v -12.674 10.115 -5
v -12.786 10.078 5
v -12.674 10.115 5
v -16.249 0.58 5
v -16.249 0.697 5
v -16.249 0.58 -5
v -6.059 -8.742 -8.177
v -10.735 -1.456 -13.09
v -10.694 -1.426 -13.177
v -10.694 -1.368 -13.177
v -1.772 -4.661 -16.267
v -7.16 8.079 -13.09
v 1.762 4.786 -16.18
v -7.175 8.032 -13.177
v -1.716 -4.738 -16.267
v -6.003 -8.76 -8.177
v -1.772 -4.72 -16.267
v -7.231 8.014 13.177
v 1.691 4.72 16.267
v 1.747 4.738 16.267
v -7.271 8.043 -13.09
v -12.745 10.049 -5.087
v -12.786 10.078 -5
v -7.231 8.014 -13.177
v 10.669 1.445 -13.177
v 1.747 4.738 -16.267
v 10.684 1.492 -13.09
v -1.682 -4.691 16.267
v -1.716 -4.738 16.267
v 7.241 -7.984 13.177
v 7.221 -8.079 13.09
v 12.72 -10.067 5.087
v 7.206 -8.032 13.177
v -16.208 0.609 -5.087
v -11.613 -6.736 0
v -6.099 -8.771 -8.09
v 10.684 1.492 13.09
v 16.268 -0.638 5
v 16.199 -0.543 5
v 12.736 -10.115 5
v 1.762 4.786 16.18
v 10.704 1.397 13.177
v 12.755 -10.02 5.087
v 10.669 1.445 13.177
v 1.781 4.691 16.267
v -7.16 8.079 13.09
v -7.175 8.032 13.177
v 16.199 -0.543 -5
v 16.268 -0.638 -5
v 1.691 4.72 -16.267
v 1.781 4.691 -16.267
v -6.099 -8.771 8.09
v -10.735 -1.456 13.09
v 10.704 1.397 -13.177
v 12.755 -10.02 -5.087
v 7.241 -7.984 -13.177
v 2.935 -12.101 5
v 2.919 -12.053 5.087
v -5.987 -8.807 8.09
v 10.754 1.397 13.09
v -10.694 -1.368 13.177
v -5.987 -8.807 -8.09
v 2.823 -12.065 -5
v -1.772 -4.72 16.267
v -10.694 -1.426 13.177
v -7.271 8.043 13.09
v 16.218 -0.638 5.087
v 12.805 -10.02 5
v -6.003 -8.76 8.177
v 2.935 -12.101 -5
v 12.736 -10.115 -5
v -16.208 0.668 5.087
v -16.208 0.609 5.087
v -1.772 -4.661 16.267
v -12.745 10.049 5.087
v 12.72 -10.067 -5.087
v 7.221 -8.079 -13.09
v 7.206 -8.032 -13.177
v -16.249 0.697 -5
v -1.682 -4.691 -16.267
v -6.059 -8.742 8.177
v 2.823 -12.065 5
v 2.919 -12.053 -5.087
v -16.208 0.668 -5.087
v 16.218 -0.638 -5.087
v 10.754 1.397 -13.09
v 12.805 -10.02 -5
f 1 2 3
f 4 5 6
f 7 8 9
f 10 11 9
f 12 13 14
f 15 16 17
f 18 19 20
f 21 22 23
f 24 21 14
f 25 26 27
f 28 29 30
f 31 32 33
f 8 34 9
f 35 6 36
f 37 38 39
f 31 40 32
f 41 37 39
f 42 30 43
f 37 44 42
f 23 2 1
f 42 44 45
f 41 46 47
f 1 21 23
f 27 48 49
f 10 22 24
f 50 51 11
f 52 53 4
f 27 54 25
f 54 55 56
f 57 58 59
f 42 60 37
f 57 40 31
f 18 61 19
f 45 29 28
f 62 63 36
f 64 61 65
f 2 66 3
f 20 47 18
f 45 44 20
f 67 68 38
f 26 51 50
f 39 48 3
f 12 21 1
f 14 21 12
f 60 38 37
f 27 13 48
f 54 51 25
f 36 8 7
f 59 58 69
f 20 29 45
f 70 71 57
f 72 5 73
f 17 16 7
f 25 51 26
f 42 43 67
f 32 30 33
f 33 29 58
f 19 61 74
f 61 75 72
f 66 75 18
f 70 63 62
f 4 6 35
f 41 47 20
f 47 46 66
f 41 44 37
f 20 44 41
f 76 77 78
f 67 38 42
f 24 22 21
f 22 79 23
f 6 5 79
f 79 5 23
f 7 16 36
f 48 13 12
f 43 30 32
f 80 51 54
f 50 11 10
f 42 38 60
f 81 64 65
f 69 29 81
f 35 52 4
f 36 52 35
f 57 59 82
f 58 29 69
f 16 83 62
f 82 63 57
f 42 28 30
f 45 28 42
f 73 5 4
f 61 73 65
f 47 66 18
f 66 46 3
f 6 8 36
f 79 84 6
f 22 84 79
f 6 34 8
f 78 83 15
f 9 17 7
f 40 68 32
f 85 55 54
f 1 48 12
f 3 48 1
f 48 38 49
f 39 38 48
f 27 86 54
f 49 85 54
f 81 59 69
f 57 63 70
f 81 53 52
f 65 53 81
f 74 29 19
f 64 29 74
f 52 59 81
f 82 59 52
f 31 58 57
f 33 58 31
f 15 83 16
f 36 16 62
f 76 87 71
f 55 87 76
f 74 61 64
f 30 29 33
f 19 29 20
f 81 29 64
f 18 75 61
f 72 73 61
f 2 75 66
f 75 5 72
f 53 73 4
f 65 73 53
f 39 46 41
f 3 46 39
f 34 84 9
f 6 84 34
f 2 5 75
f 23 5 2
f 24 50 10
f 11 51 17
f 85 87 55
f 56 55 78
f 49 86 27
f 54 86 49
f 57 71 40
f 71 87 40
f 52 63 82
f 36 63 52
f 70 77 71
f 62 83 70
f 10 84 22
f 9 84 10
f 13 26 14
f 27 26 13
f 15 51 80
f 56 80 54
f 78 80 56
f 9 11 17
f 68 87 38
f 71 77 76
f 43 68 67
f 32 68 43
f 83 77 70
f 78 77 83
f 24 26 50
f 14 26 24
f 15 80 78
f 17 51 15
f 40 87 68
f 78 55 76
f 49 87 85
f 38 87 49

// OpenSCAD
// Auto-generated OpenSCAD file

    inner_points = 10*[[-1.6167766456007826, 0.06384352681284394, 0.5000000000001501], [-1.2704727596155507, 1.001965916776716, 0.5000000000009248], [1.2704671898464706, -1.0019702419428729, -0.5000000000009248], [1.6167710758317024, -0.06384785197900072, -0.5000000000001501], [-1.616776645600842, 0.06384352681369176, -0.4999999999998499], [-1.27047275961561, 1.0019659167775639, -0.4999999999990751], [-1.0653621399346023, -0.13970879018153537, 1.309016994374892], [-0.7190582539493701, 0.7984135997823368, 1.3090169943756669], [0.7190526841802901, -0.7984179249484936, -1.3090169943756669], [1.065356570165522, 0.1397044650153786, -1.309016994374892], [1.2704671898465298, -1.0019702419437206, 0.4999999999990751], [1.616771075831762, -0.06384785197984855, 0.4999999999998499], [-1.0653621399347575, -0.13970879017931587, -1.3090169943750025], [-0.7190582539495255, 0.7984135997845563, -1.309016994374228], [-0.17315472787705996, -0.4690633575663862, 1.6180339887495077], [0.17314915810817202, 0.469059032397486, 1.6180339887502821], [-0.17315472787725203, -0.46906335756364276, -1.6180339887502821], [0.17314915810797996, 0.4690590324002294, -1.6180339887495077], [0.7190526841804455, -0.7984179249507131, 1.309016994374228], [1.0653565701656773, 0.13970446501315908, 1.3090169943750025], [-1.1532320243432654, -0.6676798043957903, -4.976019596369952e-13], [0.2903898933803613, -1.2005866887736487, -0.5000000000010351], [-0.6018175186770848, -0.8712321213901697, 0.8090169943742446], [0.29038989338042065, -1.2005866887744965, 0.49999999999896494], [-0.6018175186771807, -0.8712321213887979, -0.8090169943756502]];

    outer_points = 10*[[1.6901206881155384, -0.09096313382919773, -0.05702417590571207], [1.4361259474809793, 0.09096313382919773, 0.8929176669804033], [-1.4361259474809793, -0.09096313382919773, -0.8929176669804033], [-1.6901206881155384, 0.09096313382919773, 0.05702417590571207], [1.3468981581679096, -1.0261485852376606, 0.03030546631443143], [1.0929034175333503, -0.8442223175792652, 0.9802473092005468], [1.4362832392717357, 0.8442223175792652, -0.30399526943371824], [1.1822884986371764, 1.0261485852376606, 0.6459465734523971], [-1.1822884986371764, -1.0261485852376606, -0.6459465734523971], [-1.4362832392717357, -0.8442223175792652, 0.30399526943371824], [-1.0929034175333503, 0.8442223175792652, -0.9802473092005468], [-1.3468981581679096, 1.0261485852376606, -0.03030546631443143], [0.5377149901641148, -1.6041249799925041, -0.07536329787601459], [0.2837202495295557, -1.4221987123341089, 0.8745785450101007], [0.6823430894772717, 1.4221987123341089, -0.6162732507806177], [0.4283483488427125, 1.6041249799925041, 0.3336685921054976], [-0.4283483488427125, -1.6041249799925041, -0.3336685921054976], [-0.6823430894772717, -1.4221987123341089, 0.6162732507806177], [-0.2837202495295557, 1.4221987123341089, -0.8745785450101007], [-0.5377149901641148, 1.6041249799925041, 0.07536329787601459], [1.0297392522827944, -0.4450863344613457, -0.719212304749417], [-0.5333840655154644, -0.4450863344613457, -1.1371590502867626], [0.775901803438992, 0.49009911694711733, -0.9661833982774231], [-0.1901615355678355, 0.49009911694711733, -1.224488692506906], [0.2205560842789998, -1.0230627292161891, -0.824881068939863]];

    // Convex hull for inner set (I)
    module inner_hull() {
        hull() {
            for (p = inner_points) {
                translate(p) sphere(r=0.1);
            }
        }
    }

    // Convex hull for outer set (O) minus inner hull (O \ I)
    module outer_minus_inner() {
        difference() {
            hull() {
                for (p = outer_points) {
                    translate(p) sphere(r=0.1);
                }
            }
            inner_hull(); // Subtract inner hull
        }
    }

    // Convex hull for outer set (O) minus all translated inner hulls
    module outer_minus_AllTranslationInner() {
        difference() {
            hull() {
                for (p = outer_points) {
                    translate(p) sphere(r=0.1);
                }
            }
            hull() {
                translate([0,0,50]) inner_hull();
                translate([0,0,-50]) inner_hull();
            }; // Subtract translated inner hulls
        }
    }

    // Difference between outer_minus_inner and outer_minus_AllTranslationInner
    module outer_minus_inner_diff() {
        difference() {
            // Outer minus inner
            difference() {
                hull() {
                    for (p = outer_points) {
                        translate(p) sphere(r=0.1);
                    }
                }
                inner_hull();
            }

            // Subtract Outer minus AllTranslationInner
            difference() {
                hull() {
                    for (p = outer_points) {
                        translate(p) sphere(r=0.1);
                    }
                }
                hull() {
                    translate([0,0,50]) inner_hull();
                    translate([0,0,-50]) inner_hull();
                };
            }
        }
    }

    // Rendering all with colors applied
    color([1, 0, 0, 0.5]) inner_hull(); // Transparent red
    
